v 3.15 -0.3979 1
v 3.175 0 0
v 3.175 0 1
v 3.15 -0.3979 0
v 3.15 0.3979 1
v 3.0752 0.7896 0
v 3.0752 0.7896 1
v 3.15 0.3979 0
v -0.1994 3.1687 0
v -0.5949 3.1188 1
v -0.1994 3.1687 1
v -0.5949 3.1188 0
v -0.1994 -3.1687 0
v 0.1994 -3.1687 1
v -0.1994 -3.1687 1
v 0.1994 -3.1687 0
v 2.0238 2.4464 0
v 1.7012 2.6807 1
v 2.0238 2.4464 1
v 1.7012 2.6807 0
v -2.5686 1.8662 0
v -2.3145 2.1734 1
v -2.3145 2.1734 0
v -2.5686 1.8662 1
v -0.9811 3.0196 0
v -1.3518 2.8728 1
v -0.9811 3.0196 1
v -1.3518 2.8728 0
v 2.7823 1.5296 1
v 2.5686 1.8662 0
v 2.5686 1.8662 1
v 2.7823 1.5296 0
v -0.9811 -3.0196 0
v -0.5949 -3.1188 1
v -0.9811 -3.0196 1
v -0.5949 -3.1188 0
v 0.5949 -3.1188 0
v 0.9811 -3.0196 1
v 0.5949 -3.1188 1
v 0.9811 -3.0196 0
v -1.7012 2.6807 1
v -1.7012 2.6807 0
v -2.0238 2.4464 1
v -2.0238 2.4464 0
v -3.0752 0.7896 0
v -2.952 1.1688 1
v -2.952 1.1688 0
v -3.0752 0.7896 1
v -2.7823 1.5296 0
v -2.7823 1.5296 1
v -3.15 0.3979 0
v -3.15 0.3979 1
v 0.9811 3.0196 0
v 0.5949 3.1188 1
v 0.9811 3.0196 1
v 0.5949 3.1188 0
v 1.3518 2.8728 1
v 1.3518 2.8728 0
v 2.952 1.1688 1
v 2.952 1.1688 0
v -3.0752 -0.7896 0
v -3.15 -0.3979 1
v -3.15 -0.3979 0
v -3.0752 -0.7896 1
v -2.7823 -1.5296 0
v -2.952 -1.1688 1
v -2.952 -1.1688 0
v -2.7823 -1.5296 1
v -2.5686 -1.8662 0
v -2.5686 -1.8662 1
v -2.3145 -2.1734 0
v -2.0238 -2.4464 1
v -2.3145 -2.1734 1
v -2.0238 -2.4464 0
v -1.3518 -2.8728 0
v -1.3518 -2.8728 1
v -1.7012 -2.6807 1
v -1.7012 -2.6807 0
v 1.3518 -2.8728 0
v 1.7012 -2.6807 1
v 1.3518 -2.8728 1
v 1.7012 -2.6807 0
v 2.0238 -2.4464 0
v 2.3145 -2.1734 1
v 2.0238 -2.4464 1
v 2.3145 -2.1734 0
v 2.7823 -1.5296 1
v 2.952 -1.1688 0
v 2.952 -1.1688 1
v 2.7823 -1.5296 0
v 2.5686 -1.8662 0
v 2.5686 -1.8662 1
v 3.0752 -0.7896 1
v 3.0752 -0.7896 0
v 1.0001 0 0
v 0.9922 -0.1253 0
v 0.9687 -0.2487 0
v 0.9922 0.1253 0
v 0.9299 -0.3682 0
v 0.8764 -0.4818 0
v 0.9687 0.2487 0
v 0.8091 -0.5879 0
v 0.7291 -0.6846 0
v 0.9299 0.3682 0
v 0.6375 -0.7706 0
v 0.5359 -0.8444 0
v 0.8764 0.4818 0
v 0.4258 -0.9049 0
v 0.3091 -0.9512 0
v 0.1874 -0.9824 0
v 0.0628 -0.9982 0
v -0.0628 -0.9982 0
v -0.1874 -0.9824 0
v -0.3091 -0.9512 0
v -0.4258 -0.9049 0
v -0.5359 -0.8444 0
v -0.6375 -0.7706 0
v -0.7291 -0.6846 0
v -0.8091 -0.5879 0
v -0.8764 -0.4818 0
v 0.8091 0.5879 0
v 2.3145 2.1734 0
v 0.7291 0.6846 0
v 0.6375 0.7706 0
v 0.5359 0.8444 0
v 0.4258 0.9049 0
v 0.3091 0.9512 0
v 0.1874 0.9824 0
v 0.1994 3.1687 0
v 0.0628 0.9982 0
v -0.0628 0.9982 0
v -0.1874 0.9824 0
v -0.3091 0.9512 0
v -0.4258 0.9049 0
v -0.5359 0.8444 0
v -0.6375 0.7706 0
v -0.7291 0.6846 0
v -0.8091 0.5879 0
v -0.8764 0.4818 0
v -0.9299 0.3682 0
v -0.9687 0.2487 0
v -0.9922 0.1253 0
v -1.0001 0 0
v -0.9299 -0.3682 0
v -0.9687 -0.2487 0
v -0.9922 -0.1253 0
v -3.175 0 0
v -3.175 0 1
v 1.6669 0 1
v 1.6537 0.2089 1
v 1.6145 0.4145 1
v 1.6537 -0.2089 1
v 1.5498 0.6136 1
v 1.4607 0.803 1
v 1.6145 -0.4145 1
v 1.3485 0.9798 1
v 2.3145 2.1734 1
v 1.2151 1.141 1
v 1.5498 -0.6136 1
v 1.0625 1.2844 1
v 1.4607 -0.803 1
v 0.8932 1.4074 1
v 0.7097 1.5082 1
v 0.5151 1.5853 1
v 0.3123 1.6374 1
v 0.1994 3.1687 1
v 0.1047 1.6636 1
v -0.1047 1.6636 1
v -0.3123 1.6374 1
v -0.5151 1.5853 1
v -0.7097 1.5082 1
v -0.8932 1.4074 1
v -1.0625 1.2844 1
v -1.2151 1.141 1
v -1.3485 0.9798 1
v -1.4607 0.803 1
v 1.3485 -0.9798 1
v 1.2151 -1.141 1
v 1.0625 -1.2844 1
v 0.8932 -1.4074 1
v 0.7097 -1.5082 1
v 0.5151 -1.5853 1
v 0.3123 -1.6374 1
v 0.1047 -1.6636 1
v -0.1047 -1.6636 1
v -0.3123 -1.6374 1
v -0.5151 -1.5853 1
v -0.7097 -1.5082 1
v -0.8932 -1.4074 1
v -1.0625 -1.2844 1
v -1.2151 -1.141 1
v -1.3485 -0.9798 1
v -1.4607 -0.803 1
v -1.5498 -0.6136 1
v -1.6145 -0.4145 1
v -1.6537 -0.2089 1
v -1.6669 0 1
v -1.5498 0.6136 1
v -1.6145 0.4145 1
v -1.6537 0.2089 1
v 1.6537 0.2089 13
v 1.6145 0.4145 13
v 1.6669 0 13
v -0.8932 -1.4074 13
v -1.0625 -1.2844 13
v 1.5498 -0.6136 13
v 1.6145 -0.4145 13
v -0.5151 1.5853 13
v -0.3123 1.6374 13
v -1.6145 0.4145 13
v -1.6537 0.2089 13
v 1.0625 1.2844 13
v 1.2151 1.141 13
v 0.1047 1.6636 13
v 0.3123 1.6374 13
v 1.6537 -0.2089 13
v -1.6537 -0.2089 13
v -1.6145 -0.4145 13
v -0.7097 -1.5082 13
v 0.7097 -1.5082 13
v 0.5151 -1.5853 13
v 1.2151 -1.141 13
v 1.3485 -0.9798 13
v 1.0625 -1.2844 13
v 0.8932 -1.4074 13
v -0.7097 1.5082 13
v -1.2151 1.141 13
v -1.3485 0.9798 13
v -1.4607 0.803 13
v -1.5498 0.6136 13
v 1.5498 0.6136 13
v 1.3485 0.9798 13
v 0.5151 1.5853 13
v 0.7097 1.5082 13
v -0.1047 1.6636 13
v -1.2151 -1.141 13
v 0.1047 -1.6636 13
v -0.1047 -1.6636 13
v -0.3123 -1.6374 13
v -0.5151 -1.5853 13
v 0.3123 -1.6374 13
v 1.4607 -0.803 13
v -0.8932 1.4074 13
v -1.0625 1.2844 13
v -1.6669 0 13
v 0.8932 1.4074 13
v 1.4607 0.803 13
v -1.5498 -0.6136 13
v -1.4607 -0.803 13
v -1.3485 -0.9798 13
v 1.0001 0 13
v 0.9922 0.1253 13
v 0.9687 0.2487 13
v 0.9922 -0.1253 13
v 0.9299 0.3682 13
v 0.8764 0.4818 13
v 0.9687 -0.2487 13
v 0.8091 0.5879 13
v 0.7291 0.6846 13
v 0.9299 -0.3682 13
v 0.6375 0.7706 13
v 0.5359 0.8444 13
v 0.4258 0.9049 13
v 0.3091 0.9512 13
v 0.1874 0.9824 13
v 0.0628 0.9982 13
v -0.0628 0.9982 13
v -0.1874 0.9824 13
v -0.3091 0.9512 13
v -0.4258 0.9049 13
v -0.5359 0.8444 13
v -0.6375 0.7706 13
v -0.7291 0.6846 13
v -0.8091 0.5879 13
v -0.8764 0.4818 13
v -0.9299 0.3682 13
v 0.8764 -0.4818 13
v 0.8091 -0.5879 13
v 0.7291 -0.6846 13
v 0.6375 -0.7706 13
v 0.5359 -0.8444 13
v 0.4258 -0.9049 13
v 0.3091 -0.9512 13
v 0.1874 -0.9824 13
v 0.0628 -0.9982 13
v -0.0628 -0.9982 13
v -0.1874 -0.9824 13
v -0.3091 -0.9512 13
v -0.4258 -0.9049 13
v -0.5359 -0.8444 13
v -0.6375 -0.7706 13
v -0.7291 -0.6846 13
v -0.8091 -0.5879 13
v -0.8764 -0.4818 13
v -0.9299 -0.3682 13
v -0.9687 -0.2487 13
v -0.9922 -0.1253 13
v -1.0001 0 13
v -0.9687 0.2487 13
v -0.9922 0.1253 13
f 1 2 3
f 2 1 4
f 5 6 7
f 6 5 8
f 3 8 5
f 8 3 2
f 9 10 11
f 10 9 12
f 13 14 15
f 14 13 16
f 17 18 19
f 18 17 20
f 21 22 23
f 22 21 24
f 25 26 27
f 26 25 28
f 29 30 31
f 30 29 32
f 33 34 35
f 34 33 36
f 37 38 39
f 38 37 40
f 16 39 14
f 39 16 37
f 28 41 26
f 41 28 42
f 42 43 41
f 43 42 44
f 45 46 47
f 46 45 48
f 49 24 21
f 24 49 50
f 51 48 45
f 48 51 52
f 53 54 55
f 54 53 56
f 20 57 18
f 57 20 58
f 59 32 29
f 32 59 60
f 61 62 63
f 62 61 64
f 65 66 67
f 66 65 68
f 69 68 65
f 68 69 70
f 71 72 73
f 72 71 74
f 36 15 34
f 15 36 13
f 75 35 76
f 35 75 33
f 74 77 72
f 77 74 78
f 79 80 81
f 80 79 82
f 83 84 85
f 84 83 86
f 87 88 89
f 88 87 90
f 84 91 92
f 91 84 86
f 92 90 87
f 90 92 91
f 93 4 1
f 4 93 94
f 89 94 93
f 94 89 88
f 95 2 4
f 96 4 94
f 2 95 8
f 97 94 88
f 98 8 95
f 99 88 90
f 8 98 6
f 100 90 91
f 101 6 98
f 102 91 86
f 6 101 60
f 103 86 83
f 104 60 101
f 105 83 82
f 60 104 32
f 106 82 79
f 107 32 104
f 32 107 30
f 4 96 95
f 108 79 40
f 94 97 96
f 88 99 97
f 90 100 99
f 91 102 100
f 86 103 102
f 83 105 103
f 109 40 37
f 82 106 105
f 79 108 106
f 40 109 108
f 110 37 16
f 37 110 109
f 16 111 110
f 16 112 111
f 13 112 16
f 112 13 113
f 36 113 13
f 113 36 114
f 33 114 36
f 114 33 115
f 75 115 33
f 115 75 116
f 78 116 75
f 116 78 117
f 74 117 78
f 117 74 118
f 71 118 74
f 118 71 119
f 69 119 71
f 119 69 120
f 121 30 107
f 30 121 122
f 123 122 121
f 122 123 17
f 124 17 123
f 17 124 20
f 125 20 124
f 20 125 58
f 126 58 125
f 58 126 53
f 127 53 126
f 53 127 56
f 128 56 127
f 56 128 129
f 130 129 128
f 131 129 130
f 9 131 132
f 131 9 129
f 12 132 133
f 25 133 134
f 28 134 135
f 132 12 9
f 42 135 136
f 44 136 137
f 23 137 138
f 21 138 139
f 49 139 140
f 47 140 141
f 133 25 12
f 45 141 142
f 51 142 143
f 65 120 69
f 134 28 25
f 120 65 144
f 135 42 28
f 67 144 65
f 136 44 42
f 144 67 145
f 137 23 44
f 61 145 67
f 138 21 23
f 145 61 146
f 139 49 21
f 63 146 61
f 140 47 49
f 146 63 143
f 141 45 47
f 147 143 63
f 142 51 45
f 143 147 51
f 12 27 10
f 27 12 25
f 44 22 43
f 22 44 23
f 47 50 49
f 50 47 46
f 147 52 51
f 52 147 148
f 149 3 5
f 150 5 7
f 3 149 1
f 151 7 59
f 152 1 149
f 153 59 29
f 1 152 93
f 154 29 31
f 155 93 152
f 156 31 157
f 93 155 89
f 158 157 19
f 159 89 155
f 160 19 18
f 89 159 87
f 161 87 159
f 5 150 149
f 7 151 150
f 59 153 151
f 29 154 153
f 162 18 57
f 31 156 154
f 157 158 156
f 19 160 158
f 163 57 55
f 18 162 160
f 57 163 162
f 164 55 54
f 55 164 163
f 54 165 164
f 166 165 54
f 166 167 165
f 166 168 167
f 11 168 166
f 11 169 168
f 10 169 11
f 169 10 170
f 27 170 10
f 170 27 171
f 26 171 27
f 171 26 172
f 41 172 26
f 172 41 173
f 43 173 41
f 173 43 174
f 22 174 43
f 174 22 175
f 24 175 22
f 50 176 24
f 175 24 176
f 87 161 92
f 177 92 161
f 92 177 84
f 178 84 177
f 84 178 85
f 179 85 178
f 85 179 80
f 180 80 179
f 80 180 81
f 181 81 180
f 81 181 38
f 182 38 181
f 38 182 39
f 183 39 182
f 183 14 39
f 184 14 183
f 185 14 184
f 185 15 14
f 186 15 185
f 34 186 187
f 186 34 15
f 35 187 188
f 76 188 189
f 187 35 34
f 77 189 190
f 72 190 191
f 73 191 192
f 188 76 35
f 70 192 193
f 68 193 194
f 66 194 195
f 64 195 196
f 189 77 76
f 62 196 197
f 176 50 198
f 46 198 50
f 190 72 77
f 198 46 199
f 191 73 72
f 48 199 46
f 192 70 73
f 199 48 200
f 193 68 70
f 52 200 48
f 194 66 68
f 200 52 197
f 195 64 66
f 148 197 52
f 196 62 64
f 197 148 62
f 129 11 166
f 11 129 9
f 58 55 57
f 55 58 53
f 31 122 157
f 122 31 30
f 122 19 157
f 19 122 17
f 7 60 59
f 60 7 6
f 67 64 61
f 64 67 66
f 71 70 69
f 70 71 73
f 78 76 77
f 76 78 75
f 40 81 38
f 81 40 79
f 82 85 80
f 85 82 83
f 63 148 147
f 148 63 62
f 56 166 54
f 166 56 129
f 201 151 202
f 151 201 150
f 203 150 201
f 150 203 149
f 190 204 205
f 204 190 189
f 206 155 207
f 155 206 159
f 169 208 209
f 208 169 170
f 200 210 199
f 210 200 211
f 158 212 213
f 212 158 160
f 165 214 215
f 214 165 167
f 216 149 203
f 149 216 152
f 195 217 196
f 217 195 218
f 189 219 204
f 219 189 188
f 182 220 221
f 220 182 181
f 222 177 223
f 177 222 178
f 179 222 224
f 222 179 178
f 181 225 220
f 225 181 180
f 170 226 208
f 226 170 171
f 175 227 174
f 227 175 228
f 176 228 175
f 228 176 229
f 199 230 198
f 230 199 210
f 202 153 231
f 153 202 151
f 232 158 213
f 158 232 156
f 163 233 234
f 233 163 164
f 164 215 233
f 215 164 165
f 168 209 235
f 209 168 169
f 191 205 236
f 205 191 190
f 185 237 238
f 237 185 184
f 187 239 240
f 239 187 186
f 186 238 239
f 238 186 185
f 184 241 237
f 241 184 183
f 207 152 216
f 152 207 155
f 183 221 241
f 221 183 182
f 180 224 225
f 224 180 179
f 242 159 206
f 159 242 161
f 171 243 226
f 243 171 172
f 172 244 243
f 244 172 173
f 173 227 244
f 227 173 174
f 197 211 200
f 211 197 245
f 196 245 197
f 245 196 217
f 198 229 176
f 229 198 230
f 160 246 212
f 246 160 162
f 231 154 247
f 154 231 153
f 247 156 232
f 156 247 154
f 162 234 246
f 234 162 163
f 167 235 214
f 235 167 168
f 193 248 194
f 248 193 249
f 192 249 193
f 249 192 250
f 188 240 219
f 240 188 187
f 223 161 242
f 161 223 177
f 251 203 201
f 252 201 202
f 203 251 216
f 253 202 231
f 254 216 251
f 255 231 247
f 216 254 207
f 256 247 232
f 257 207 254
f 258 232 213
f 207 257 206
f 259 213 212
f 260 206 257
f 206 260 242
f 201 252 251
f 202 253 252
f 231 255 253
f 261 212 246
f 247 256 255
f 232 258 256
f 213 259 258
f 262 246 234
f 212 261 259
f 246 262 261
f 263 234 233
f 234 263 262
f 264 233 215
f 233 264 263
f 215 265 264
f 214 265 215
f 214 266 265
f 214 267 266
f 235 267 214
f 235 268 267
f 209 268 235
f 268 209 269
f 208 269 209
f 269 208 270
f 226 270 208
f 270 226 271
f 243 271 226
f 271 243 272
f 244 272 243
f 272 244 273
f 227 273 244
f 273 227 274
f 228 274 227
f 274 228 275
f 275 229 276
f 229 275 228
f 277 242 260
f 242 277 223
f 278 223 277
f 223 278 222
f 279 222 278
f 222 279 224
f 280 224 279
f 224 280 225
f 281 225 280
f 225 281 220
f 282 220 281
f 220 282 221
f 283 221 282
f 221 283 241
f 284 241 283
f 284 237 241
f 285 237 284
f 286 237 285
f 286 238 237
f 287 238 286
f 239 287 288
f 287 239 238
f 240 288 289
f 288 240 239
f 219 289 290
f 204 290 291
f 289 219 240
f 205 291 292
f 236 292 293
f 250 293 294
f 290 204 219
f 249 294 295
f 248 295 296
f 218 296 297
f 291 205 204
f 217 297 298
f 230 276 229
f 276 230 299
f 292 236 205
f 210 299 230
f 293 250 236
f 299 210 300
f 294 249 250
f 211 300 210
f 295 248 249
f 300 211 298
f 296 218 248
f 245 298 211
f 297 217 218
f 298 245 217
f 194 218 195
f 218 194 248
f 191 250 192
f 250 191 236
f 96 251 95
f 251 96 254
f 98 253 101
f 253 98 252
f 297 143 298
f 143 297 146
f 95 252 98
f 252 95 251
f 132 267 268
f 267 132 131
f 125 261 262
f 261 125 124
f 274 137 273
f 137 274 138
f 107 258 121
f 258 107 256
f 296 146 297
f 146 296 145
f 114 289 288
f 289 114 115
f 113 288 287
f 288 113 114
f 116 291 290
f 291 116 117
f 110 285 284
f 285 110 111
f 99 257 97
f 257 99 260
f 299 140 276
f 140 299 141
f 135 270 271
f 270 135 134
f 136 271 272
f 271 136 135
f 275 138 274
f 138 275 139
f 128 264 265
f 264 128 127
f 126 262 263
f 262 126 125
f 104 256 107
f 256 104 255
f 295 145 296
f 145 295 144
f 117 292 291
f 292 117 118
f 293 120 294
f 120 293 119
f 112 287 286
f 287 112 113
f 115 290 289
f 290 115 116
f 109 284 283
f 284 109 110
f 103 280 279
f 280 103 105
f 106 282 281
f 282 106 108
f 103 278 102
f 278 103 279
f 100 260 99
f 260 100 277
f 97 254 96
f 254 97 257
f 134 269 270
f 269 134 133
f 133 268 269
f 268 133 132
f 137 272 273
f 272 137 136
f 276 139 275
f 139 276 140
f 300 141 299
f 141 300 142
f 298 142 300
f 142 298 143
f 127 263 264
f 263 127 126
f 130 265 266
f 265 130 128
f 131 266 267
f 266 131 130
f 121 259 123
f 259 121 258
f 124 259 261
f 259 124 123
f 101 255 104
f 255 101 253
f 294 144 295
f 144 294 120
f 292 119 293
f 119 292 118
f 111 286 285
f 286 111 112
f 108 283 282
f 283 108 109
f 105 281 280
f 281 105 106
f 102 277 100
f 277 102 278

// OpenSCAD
/*

A tube insert for 1/8" ID 1/4" OD tubing
for inserting into a swagelok connector
Mark Stenglein, 11.27.2018

*/


// this variable controls the resolution of the model (the number of fragments)
// decrease for coarser
$fn=50;


// dimensions in mm -- modify these to change size 
base_diameter = 0.25 * 25.4;
base_height = 1;   

insert_diameter = 0.125 * 25.4 * 1.05; // make it a bit bigger than ID
insert_inner_diameter = insert_diameter * 0.6;
insert_height = 13;

part();

module part()
{
   difference()
   {
      union()
      {
         linear_extrude(height=base_height)
         circle(d=base_diameter);

         linear_extrude(height=insert_height)
         circle(d=insert_diameter);
      }
      linear_extrude(height=insert_height*1.1)
      circle(d=insert_inner_diameter);
   }
   
}
